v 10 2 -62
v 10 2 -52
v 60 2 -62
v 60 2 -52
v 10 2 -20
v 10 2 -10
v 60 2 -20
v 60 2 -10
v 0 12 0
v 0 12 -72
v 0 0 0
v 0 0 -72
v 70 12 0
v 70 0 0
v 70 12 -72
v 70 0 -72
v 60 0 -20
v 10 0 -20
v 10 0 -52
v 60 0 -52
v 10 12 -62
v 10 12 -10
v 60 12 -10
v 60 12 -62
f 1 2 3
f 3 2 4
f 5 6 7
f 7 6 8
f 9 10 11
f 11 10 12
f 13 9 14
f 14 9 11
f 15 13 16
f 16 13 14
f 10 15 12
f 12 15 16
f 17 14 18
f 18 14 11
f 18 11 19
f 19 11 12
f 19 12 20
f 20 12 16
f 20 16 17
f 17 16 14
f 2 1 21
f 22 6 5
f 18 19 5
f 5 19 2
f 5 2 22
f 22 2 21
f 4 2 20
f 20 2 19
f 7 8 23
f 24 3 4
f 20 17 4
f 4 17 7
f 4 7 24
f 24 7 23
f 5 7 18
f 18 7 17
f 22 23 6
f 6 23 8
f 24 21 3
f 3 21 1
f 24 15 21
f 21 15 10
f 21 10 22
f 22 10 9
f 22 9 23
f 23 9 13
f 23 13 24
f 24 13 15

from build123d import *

# Parameters (mm, degrees)
SKETCH1_W           = 70
SKETCH1_H           = 72
BOSS_EXTRUDE1_DEPTH = 2
SKETCH2_W           = 50
SKETCH2_H           = 32
CUT_EXTRUDE1_DEPTH  = 12
SKETCH3_W           = 10
SKETCH3_H           = 52
SKETCH3_H_2         = 10
SKETCH3_W_2         = 50
BOSS_EXTRUDE2_DEPTH = 10


with BuildPart() as part:
    # Sketch1 → Boss-Extrude1 (new body)
    with BuildSketch(Plane(origin=(0, 0, 0), x_dir=(1, 0, 0), z_dir=(0, 1, 0))):
        with Locations((35, 36)):
            Rectangle(SKETCH1_W, SKETCH1_H)
    extrude(amount=BOSS_EXTRUDE1_DEPTH)

    # Sketch2 → Cut-Extrude1 (cut)
    with BuildSketch(Plane(origin=(0, 2, 0), x_dir=(1, 0, 0), z_dir=(0, 1, 0))):
        with Locations((35, 36)):
            Rectangle(SKETCH2_W, SKETCH2_H)
    extrude(amount=-CUT_EXTRUDE1_DEPTH, mode=Mode.SUBTRACT)

    # Sketch3 → Boss-Extrude2 (add)
    with BuildSketch(Plane(origin=(0, 2, 0), x_dir=(1, 0, 0), z_dir=(0, 1, 0))):
        with Locations((5, 36)):
            Rectangle(SKETCH3_W, SKETCH3_H)
        with Locations((5, 67)):
            Rectangle(SKETCH3_W, SKETCH3_H_2)
        with Locations((35, 67)):
            Rectangle(SKETCH3_W_2, SKETCH3_H_2)
        with Locations((5, 5)):
            Rectangle(SKETCH3_W, SKETCH3_H_2)
        with Locations((35, 5)):
            Rectangle(SKETCH3_W_2, SKETCH3_H_2)
        with Locations((65, 5)):
            Rectangle(SKETCH3_W, SKETCH3_H_2)
        with Locations((65, 36)):
            Rectangle(SKETCH3_W, SKETCH3_H)
        with Locations((65, 67)):
            Rectangle(SKETCH3_W, SKETCH3_H_2)
    extrude(amount=BOSS_EXTRUDE2_DEPTH)


solid = part.part
